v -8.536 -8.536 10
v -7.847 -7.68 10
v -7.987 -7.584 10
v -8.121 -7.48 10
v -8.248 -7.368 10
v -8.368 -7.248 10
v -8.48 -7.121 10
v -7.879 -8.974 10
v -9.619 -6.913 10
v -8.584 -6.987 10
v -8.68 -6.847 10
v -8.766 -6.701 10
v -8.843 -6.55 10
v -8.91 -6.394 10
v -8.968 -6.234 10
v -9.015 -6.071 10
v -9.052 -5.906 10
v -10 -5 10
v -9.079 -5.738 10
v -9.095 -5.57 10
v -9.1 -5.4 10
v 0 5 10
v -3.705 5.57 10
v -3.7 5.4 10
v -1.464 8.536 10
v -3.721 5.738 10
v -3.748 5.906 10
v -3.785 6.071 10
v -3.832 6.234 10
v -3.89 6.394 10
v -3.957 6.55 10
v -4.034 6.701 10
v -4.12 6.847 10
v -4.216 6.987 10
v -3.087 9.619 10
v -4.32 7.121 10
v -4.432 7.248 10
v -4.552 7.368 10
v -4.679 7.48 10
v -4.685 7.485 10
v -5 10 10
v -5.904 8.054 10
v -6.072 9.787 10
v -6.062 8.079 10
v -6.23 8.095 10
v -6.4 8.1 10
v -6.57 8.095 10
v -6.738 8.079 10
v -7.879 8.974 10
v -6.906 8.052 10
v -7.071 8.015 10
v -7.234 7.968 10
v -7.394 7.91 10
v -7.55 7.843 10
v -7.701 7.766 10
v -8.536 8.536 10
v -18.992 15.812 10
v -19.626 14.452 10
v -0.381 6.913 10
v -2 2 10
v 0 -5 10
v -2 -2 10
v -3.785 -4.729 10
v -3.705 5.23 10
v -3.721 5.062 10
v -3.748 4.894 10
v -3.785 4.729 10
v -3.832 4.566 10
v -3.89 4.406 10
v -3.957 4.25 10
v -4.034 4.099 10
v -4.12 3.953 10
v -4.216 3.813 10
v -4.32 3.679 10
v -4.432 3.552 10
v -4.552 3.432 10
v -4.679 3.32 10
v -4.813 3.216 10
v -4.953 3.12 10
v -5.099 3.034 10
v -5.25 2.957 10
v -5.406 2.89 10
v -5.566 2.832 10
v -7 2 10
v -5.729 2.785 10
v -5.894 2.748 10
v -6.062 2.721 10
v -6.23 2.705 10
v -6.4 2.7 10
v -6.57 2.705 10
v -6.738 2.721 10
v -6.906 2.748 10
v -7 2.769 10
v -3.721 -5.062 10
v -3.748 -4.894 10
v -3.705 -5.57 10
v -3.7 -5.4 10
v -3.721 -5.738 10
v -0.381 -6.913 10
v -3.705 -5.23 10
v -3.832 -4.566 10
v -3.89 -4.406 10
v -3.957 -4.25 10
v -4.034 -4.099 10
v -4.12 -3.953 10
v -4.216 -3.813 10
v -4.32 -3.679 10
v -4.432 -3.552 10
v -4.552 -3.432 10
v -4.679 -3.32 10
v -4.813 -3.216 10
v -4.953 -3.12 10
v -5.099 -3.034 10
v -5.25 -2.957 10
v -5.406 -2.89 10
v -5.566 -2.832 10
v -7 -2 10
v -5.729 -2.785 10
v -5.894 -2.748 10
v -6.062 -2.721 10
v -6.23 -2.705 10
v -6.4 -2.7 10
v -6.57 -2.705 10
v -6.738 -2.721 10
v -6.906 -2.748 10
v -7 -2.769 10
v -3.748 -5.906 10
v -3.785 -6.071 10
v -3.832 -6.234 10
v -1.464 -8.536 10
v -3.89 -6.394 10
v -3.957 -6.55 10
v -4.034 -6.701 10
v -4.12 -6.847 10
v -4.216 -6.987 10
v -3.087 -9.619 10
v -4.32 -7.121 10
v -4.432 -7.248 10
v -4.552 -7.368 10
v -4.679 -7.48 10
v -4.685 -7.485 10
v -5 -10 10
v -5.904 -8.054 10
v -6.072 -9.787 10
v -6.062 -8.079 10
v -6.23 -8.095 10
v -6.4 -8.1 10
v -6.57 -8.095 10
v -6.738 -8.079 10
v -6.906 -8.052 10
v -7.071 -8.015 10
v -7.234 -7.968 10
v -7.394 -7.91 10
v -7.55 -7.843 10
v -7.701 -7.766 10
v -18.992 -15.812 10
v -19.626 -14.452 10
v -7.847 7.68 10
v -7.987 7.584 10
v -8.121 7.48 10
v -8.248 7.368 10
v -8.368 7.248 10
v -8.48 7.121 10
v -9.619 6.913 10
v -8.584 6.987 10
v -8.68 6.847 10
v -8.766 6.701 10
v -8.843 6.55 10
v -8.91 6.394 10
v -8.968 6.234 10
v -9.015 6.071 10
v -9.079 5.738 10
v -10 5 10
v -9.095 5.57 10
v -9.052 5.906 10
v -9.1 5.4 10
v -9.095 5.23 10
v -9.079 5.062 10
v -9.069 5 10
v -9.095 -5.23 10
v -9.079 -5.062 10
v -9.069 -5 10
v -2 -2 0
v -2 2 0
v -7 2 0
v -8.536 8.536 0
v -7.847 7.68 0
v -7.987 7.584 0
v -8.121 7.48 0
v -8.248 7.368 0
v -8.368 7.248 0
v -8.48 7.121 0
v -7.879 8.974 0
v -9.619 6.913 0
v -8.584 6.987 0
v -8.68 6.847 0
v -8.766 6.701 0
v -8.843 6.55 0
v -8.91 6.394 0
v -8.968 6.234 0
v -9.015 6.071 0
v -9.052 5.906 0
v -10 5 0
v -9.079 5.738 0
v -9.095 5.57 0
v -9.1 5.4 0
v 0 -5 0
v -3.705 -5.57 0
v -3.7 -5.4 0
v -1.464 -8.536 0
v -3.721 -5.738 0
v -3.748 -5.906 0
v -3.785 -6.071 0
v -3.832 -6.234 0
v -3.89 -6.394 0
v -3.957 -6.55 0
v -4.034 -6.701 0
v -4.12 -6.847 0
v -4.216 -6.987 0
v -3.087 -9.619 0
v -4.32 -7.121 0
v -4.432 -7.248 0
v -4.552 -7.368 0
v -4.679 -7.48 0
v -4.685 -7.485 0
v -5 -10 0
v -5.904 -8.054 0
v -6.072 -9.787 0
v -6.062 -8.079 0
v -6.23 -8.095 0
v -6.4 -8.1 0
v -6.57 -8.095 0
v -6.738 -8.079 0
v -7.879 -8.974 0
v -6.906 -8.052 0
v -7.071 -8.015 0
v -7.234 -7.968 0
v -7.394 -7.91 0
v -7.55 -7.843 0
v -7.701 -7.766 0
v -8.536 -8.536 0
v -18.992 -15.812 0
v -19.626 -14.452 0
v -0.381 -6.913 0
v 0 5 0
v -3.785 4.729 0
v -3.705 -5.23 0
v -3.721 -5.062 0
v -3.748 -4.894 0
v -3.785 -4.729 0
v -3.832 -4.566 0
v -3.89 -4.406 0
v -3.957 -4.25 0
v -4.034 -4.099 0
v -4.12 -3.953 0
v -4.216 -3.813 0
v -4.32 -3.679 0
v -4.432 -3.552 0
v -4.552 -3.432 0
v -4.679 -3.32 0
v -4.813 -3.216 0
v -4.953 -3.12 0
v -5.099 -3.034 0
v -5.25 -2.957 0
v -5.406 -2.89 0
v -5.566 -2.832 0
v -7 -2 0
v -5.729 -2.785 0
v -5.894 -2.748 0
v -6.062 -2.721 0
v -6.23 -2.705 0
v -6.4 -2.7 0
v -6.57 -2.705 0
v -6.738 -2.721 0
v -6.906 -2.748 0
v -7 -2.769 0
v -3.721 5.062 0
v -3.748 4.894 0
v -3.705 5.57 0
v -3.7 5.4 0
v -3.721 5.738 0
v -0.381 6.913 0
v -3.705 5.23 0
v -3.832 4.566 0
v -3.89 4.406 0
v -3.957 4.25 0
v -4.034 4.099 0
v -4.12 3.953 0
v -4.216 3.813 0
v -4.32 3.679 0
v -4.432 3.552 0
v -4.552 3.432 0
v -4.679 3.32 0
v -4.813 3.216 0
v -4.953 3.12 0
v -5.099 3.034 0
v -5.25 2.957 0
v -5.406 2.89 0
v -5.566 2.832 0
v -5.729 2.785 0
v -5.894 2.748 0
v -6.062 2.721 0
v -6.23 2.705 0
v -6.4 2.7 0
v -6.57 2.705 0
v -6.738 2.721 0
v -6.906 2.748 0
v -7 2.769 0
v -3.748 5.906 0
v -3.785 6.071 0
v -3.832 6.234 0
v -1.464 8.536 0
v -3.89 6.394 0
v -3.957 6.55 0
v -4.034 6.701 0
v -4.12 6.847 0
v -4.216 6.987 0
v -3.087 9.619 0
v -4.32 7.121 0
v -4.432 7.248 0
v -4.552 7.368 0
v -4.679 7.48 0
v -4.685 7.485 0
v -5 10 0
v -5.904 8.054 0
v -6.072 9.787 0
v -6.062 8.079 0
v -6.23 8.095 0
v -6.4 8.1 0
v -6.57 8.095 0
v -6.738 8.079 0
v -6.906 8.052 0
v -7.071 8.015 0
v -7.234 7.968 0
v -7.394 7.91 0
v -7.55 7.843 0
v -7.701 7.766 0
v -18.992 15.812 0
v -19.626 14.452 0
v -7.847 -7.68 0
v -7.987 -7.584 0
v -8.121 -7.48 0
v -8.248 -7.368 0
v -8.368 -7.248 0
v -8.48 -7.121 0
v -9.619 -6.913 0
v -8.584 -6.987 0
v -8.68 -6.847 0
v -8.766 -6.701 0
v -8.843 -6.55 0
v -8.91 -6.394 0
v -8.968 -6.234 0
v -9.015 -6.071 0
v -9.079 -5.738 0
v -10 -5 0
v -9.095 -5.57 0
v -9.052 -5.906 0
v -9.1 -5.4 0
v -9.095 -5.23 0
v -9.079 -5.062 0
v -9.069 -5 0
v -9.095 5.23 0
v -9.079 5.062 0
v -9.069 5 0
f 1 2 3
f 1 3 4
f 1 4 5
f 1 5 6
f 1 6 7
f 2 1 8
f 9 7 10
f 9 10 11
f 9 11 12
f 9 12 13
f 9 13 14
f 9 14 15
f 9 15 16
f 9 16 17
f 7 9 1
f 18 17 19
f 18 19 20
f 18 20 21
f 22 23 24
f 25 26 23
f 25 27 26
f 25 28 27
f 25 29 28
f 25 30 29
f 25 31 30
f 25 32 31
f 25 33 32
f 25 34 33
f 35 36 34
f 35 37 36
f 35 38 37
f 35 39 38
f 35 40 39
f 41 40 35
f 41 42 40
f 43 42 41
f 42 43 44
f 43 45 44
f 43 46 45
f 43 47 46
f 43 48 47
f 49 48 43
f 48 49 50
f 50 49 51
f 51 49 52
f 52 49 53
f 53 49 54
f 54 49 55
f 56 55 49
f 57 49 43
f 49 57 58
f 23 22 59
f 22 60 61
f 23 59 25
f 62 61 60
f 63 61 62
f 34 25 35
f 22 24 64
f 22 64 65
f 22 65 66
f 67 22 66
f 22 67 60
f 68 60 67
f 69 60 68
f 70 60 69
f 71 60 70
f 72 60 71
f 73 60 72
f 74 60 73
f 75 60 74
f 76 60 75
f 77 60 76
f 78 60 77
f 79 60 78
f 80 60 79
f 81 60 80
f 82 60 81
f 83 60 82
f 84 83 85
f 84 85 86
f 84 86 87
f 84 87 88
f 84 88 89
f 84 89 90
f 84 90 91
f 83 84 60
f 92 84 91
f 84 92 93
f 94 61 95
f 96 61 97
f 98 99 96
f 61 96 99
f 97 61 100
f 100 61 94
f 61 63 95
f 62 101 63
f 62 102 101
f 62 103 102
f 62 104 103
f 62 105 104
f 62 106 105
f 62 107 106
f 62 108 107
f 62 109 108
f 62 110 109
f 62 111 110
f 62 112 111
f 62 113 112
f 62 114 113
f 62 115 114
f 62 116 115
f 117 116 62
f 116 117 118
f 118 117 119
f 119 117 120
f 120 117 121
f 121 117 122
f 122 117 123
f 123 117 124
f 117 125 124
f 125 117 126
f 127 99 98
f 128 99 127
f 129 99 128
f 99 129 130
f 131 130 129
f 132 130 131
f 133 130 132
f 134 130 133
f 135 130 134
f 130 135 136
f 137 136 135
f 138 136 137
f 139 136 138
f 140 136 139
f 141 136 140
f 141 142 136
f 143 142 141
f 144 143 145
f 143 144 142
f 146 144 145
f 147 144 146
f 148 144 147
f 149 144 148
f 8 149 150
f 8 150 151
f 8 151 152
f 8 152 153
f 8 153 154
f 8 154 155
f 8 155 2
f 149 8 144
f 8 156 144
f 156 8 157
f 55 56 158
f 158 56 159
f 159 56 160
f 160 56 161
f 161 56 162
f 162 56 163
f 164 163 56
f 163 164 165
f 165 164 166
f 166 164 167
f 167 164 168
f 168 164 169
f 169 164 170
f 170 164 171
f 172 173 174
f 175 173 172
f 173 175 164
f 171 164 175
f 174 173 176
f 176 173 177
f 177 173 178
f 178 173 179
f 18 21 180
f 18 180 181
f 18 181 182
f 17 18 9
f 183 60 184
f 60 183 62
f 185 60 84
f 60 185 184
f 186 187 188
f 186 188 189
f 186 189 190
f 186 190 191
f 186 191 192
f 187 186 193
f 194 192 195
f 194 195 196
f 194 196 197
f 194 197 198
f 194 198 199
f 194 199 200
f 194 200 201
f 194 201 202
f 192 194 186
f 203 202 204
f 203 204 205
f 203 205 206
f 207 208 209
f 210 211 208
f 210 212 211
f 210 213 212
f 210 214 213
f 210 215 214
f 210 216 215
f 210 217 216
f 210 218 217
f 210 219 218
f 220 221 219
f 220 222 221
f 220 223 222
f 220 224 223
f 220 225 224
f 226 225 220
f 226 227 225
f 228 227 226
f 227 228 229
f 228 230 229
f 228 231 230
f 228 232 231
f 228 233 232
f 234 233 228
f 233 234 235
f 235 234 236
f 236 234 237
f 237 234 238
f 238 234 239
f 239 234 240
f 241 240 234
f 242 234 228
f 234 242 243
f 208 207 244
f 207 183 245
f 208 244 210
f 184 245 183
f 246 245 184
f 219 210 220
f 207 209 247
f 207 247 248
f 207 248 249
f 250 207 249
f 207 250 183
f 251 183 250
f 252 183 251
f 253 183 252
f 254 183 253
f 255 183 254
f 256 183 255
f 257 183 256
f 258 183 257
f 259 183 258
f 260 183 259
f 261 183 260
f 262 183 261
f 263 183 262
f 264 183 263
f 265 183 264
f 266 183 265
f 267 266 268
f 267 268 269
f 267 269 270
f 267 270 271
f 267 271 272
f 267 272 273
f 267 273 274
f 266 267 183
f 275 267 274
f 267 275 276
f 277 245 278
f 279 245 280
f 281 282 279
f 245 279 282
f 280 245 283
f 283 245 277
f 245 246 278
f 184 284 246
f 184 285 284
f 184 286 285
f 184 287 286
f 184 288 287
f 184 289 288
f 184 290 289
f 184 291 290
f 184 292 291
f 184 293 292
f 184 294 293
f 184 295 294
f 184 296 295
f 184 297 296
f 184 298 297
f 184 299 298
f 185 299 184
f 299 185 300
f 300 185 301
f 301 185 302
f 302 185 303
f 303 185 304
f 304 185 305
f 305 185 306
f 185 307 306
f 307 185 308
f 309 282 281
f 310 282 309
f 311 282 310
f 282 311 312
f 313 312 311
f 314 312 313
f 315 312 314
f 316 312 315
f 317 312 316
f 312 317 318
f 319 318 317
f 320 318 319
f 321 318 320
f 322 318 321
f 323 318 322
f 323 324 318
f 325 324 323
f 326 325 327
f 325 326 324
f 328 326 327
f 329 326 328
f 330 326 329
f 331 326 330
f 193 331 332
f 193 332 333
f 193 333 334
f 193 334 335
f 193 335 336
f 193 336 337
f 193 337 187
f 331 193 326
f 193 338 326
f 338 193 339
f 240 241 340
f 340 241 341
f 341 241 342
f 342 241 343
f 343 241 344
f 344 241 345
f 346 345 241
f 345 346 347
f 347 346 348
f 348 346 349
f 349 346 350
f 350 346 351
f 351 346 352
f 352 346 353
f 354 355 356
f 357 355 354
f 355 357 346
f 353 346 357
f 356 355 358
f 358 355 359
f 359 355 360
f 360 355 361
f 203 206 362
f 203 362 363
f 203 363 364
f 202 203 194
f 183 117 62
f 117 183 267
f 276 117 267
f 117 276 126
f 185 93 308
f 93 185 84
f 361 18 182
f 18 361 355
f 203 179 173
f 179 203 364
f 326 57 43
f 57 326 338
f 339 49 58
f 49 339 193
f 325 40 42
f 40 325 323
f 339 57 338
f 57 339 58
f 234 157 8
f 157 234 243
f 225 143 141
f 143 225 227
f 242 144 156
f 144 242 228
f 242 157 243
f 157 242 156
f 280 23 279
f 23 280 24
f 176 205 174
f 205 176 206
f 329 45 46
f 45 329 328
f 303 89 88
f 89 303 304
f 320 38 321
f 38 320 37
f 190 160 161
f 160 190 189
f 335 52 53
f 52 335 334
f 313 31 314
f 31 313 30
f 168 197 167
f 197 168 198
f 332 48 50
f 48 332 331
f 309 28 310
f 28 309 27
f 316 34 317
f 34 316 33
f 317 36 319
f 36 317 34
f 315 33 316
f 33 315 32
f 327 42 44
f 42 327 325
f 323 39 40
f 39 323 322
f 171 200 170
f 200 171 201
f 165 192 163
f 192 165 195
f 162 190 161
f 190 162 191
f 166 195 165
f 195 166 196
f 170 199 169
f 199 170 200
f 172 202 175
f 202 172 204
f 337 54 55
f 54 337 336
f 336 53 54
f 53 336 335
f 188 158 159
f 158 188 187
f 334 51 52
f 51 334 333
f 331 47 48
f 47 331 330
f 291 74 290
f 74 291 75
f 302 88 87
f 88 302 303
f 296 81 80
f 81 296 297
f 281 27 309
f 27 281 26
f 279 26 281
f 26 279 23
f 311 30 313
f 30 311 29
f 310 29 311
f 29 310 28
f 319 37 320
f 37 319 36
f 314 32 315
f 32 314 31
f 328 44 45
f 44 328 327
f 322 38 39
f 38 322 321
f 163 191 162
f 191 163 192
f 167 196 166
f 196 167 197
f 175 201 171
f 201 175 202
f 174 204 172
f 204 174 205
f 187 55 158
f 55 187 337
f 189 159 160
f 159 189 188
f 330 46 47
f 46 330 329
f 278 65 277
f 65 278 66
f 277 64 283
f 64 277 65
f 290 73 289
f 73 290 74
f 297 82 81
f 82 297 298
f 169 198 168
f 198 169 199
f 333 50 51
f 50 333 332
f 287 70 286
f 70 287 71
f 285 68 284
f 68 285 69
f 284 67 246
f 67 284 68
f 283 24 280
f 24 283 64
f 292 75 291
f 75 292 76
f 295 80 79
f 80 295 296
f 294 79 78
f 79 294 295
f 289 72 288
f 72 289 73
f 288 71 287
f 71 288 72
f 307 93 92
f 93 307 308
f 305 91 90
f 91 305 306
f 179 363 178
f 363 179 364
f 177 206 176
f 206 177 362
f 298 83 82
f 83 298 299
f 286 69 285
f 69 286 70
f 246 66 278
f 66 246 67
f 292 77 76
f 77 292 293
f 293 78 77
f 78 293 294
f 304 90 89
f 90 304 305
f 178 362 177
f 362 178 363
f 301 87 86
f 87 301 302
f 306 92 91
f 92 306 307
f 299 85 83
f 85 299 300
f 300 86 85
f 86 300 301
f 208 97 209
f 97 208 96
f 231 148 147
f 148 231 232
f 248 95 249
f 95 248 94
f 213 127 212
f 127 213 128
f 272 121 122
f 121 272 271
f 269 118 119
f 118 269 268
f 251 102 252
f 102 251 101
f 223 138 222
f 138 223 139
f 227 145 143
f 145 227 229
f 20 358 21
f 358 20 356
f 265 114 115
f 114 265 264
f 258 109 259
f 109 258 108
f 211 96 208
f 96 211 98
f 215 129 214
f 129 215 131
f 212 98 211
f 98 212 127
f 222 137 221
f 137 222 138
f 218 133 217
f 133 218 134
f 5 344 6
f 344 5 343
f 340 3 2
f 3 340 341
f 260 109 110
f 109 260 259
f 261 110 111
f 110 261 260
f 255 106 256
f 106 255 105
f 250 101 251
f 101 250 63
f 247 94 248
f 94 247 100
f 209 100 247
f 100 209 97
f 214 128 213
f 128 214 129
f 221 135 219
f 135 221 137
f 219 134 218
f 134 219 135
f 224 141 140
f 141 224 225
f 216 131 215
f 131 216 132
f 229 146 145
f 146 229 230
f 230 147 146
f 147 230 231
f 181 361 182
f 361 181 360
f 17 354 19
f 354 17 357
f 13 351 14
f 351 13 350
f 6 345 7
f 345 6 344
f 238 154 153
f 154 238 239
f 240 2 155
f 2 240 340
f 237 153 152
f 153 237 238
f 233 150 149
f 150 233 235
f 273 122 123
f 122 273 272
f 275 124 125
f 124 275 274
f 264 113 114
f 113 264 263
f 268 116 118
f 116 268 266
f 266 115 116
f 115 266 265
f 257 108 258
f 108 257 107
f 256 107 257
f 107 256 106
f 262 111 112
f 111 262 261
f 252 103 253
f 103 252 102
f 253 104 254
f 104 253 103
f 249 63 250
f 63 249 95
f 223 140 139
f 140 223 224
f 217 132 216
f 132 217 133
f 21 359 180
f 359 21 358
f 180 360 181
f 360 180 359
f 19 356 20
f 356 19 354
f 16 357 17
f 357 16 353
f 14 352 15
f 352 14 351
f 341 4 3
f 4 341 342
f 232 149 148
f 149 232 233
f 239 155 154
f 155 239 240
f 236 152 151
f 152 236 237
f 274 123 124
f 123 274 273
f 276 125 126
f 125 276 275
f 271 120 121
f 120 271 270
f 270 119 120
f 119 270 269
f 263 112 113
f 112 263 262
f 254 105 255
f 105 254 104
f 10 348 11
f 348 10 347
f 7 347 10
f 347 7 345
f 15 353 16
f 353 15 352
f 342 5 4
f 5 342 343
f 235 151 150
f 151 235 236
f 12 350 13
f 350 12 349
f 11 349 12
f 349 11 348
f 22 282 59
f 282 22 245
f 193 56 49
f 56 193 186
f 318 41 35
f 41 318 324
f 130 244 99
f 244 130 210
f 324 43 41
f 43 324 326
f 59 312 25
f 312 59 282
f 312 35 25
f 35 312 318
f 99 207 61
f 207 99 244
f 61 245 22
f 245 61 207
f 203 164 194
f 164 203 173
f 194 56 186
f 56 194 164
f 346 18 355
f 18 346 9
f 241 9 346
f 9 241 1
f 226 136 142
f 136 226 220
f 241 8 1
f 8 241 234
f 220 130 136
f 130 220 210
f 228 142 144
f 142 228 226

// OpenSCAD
//include <relativity.scad>

radio_borde = 10/2;
radio_pajita = 5.4/2;
altura = 10;


varandilla();
difference() {
  difference() {
    soporte(altura);
  }
  taladros_pagitas();
  quitar_material();
}


module soporte(altura) {
  posicion_soporte = [-5, 5, 0];
  hull() {
    translate(posicion_soporte)
    cylinder(r=radio_borde, h=altura);

    mirror([0, 1, 0])
      translate(posicion_soporte)
      cylinder(r=radio_borde, h=altura);

  }
}

module varandilla() {
  translate([-1.5, 6, 0]) {
    rotate([0, 0, 65]) {
      cube(size=[1.5, 20, 10]);
    }
  }
  mirror([0, 1, 0]) {
    translate([-1.5, 6, 0]) {
      rotate([0, 0, 65]) {
        cube(size=[1.5, 20, 10]);
      }
    }
  }

}

module taladros_pagitas() {
  altura_taladro = 12;
  posicion_taladro = [-6.4, 5.4, -1];

    translate(posicion_taladro)
      cylinder(r=radio_pajita, h=altura_taladro, $fn=100);

      mirror([0, 1, 0])
        translate(posicion_taladro)
        cylinder(r=radio_pajita, h=altura_taladro, $fn=100);
}

module quitar_material() {
  translate([-17, -2, 0])
    cube(size=[15, 4, 10]);
  translate([-12, -5, 0])
    cube(size=[5, 10, 10]);
}
